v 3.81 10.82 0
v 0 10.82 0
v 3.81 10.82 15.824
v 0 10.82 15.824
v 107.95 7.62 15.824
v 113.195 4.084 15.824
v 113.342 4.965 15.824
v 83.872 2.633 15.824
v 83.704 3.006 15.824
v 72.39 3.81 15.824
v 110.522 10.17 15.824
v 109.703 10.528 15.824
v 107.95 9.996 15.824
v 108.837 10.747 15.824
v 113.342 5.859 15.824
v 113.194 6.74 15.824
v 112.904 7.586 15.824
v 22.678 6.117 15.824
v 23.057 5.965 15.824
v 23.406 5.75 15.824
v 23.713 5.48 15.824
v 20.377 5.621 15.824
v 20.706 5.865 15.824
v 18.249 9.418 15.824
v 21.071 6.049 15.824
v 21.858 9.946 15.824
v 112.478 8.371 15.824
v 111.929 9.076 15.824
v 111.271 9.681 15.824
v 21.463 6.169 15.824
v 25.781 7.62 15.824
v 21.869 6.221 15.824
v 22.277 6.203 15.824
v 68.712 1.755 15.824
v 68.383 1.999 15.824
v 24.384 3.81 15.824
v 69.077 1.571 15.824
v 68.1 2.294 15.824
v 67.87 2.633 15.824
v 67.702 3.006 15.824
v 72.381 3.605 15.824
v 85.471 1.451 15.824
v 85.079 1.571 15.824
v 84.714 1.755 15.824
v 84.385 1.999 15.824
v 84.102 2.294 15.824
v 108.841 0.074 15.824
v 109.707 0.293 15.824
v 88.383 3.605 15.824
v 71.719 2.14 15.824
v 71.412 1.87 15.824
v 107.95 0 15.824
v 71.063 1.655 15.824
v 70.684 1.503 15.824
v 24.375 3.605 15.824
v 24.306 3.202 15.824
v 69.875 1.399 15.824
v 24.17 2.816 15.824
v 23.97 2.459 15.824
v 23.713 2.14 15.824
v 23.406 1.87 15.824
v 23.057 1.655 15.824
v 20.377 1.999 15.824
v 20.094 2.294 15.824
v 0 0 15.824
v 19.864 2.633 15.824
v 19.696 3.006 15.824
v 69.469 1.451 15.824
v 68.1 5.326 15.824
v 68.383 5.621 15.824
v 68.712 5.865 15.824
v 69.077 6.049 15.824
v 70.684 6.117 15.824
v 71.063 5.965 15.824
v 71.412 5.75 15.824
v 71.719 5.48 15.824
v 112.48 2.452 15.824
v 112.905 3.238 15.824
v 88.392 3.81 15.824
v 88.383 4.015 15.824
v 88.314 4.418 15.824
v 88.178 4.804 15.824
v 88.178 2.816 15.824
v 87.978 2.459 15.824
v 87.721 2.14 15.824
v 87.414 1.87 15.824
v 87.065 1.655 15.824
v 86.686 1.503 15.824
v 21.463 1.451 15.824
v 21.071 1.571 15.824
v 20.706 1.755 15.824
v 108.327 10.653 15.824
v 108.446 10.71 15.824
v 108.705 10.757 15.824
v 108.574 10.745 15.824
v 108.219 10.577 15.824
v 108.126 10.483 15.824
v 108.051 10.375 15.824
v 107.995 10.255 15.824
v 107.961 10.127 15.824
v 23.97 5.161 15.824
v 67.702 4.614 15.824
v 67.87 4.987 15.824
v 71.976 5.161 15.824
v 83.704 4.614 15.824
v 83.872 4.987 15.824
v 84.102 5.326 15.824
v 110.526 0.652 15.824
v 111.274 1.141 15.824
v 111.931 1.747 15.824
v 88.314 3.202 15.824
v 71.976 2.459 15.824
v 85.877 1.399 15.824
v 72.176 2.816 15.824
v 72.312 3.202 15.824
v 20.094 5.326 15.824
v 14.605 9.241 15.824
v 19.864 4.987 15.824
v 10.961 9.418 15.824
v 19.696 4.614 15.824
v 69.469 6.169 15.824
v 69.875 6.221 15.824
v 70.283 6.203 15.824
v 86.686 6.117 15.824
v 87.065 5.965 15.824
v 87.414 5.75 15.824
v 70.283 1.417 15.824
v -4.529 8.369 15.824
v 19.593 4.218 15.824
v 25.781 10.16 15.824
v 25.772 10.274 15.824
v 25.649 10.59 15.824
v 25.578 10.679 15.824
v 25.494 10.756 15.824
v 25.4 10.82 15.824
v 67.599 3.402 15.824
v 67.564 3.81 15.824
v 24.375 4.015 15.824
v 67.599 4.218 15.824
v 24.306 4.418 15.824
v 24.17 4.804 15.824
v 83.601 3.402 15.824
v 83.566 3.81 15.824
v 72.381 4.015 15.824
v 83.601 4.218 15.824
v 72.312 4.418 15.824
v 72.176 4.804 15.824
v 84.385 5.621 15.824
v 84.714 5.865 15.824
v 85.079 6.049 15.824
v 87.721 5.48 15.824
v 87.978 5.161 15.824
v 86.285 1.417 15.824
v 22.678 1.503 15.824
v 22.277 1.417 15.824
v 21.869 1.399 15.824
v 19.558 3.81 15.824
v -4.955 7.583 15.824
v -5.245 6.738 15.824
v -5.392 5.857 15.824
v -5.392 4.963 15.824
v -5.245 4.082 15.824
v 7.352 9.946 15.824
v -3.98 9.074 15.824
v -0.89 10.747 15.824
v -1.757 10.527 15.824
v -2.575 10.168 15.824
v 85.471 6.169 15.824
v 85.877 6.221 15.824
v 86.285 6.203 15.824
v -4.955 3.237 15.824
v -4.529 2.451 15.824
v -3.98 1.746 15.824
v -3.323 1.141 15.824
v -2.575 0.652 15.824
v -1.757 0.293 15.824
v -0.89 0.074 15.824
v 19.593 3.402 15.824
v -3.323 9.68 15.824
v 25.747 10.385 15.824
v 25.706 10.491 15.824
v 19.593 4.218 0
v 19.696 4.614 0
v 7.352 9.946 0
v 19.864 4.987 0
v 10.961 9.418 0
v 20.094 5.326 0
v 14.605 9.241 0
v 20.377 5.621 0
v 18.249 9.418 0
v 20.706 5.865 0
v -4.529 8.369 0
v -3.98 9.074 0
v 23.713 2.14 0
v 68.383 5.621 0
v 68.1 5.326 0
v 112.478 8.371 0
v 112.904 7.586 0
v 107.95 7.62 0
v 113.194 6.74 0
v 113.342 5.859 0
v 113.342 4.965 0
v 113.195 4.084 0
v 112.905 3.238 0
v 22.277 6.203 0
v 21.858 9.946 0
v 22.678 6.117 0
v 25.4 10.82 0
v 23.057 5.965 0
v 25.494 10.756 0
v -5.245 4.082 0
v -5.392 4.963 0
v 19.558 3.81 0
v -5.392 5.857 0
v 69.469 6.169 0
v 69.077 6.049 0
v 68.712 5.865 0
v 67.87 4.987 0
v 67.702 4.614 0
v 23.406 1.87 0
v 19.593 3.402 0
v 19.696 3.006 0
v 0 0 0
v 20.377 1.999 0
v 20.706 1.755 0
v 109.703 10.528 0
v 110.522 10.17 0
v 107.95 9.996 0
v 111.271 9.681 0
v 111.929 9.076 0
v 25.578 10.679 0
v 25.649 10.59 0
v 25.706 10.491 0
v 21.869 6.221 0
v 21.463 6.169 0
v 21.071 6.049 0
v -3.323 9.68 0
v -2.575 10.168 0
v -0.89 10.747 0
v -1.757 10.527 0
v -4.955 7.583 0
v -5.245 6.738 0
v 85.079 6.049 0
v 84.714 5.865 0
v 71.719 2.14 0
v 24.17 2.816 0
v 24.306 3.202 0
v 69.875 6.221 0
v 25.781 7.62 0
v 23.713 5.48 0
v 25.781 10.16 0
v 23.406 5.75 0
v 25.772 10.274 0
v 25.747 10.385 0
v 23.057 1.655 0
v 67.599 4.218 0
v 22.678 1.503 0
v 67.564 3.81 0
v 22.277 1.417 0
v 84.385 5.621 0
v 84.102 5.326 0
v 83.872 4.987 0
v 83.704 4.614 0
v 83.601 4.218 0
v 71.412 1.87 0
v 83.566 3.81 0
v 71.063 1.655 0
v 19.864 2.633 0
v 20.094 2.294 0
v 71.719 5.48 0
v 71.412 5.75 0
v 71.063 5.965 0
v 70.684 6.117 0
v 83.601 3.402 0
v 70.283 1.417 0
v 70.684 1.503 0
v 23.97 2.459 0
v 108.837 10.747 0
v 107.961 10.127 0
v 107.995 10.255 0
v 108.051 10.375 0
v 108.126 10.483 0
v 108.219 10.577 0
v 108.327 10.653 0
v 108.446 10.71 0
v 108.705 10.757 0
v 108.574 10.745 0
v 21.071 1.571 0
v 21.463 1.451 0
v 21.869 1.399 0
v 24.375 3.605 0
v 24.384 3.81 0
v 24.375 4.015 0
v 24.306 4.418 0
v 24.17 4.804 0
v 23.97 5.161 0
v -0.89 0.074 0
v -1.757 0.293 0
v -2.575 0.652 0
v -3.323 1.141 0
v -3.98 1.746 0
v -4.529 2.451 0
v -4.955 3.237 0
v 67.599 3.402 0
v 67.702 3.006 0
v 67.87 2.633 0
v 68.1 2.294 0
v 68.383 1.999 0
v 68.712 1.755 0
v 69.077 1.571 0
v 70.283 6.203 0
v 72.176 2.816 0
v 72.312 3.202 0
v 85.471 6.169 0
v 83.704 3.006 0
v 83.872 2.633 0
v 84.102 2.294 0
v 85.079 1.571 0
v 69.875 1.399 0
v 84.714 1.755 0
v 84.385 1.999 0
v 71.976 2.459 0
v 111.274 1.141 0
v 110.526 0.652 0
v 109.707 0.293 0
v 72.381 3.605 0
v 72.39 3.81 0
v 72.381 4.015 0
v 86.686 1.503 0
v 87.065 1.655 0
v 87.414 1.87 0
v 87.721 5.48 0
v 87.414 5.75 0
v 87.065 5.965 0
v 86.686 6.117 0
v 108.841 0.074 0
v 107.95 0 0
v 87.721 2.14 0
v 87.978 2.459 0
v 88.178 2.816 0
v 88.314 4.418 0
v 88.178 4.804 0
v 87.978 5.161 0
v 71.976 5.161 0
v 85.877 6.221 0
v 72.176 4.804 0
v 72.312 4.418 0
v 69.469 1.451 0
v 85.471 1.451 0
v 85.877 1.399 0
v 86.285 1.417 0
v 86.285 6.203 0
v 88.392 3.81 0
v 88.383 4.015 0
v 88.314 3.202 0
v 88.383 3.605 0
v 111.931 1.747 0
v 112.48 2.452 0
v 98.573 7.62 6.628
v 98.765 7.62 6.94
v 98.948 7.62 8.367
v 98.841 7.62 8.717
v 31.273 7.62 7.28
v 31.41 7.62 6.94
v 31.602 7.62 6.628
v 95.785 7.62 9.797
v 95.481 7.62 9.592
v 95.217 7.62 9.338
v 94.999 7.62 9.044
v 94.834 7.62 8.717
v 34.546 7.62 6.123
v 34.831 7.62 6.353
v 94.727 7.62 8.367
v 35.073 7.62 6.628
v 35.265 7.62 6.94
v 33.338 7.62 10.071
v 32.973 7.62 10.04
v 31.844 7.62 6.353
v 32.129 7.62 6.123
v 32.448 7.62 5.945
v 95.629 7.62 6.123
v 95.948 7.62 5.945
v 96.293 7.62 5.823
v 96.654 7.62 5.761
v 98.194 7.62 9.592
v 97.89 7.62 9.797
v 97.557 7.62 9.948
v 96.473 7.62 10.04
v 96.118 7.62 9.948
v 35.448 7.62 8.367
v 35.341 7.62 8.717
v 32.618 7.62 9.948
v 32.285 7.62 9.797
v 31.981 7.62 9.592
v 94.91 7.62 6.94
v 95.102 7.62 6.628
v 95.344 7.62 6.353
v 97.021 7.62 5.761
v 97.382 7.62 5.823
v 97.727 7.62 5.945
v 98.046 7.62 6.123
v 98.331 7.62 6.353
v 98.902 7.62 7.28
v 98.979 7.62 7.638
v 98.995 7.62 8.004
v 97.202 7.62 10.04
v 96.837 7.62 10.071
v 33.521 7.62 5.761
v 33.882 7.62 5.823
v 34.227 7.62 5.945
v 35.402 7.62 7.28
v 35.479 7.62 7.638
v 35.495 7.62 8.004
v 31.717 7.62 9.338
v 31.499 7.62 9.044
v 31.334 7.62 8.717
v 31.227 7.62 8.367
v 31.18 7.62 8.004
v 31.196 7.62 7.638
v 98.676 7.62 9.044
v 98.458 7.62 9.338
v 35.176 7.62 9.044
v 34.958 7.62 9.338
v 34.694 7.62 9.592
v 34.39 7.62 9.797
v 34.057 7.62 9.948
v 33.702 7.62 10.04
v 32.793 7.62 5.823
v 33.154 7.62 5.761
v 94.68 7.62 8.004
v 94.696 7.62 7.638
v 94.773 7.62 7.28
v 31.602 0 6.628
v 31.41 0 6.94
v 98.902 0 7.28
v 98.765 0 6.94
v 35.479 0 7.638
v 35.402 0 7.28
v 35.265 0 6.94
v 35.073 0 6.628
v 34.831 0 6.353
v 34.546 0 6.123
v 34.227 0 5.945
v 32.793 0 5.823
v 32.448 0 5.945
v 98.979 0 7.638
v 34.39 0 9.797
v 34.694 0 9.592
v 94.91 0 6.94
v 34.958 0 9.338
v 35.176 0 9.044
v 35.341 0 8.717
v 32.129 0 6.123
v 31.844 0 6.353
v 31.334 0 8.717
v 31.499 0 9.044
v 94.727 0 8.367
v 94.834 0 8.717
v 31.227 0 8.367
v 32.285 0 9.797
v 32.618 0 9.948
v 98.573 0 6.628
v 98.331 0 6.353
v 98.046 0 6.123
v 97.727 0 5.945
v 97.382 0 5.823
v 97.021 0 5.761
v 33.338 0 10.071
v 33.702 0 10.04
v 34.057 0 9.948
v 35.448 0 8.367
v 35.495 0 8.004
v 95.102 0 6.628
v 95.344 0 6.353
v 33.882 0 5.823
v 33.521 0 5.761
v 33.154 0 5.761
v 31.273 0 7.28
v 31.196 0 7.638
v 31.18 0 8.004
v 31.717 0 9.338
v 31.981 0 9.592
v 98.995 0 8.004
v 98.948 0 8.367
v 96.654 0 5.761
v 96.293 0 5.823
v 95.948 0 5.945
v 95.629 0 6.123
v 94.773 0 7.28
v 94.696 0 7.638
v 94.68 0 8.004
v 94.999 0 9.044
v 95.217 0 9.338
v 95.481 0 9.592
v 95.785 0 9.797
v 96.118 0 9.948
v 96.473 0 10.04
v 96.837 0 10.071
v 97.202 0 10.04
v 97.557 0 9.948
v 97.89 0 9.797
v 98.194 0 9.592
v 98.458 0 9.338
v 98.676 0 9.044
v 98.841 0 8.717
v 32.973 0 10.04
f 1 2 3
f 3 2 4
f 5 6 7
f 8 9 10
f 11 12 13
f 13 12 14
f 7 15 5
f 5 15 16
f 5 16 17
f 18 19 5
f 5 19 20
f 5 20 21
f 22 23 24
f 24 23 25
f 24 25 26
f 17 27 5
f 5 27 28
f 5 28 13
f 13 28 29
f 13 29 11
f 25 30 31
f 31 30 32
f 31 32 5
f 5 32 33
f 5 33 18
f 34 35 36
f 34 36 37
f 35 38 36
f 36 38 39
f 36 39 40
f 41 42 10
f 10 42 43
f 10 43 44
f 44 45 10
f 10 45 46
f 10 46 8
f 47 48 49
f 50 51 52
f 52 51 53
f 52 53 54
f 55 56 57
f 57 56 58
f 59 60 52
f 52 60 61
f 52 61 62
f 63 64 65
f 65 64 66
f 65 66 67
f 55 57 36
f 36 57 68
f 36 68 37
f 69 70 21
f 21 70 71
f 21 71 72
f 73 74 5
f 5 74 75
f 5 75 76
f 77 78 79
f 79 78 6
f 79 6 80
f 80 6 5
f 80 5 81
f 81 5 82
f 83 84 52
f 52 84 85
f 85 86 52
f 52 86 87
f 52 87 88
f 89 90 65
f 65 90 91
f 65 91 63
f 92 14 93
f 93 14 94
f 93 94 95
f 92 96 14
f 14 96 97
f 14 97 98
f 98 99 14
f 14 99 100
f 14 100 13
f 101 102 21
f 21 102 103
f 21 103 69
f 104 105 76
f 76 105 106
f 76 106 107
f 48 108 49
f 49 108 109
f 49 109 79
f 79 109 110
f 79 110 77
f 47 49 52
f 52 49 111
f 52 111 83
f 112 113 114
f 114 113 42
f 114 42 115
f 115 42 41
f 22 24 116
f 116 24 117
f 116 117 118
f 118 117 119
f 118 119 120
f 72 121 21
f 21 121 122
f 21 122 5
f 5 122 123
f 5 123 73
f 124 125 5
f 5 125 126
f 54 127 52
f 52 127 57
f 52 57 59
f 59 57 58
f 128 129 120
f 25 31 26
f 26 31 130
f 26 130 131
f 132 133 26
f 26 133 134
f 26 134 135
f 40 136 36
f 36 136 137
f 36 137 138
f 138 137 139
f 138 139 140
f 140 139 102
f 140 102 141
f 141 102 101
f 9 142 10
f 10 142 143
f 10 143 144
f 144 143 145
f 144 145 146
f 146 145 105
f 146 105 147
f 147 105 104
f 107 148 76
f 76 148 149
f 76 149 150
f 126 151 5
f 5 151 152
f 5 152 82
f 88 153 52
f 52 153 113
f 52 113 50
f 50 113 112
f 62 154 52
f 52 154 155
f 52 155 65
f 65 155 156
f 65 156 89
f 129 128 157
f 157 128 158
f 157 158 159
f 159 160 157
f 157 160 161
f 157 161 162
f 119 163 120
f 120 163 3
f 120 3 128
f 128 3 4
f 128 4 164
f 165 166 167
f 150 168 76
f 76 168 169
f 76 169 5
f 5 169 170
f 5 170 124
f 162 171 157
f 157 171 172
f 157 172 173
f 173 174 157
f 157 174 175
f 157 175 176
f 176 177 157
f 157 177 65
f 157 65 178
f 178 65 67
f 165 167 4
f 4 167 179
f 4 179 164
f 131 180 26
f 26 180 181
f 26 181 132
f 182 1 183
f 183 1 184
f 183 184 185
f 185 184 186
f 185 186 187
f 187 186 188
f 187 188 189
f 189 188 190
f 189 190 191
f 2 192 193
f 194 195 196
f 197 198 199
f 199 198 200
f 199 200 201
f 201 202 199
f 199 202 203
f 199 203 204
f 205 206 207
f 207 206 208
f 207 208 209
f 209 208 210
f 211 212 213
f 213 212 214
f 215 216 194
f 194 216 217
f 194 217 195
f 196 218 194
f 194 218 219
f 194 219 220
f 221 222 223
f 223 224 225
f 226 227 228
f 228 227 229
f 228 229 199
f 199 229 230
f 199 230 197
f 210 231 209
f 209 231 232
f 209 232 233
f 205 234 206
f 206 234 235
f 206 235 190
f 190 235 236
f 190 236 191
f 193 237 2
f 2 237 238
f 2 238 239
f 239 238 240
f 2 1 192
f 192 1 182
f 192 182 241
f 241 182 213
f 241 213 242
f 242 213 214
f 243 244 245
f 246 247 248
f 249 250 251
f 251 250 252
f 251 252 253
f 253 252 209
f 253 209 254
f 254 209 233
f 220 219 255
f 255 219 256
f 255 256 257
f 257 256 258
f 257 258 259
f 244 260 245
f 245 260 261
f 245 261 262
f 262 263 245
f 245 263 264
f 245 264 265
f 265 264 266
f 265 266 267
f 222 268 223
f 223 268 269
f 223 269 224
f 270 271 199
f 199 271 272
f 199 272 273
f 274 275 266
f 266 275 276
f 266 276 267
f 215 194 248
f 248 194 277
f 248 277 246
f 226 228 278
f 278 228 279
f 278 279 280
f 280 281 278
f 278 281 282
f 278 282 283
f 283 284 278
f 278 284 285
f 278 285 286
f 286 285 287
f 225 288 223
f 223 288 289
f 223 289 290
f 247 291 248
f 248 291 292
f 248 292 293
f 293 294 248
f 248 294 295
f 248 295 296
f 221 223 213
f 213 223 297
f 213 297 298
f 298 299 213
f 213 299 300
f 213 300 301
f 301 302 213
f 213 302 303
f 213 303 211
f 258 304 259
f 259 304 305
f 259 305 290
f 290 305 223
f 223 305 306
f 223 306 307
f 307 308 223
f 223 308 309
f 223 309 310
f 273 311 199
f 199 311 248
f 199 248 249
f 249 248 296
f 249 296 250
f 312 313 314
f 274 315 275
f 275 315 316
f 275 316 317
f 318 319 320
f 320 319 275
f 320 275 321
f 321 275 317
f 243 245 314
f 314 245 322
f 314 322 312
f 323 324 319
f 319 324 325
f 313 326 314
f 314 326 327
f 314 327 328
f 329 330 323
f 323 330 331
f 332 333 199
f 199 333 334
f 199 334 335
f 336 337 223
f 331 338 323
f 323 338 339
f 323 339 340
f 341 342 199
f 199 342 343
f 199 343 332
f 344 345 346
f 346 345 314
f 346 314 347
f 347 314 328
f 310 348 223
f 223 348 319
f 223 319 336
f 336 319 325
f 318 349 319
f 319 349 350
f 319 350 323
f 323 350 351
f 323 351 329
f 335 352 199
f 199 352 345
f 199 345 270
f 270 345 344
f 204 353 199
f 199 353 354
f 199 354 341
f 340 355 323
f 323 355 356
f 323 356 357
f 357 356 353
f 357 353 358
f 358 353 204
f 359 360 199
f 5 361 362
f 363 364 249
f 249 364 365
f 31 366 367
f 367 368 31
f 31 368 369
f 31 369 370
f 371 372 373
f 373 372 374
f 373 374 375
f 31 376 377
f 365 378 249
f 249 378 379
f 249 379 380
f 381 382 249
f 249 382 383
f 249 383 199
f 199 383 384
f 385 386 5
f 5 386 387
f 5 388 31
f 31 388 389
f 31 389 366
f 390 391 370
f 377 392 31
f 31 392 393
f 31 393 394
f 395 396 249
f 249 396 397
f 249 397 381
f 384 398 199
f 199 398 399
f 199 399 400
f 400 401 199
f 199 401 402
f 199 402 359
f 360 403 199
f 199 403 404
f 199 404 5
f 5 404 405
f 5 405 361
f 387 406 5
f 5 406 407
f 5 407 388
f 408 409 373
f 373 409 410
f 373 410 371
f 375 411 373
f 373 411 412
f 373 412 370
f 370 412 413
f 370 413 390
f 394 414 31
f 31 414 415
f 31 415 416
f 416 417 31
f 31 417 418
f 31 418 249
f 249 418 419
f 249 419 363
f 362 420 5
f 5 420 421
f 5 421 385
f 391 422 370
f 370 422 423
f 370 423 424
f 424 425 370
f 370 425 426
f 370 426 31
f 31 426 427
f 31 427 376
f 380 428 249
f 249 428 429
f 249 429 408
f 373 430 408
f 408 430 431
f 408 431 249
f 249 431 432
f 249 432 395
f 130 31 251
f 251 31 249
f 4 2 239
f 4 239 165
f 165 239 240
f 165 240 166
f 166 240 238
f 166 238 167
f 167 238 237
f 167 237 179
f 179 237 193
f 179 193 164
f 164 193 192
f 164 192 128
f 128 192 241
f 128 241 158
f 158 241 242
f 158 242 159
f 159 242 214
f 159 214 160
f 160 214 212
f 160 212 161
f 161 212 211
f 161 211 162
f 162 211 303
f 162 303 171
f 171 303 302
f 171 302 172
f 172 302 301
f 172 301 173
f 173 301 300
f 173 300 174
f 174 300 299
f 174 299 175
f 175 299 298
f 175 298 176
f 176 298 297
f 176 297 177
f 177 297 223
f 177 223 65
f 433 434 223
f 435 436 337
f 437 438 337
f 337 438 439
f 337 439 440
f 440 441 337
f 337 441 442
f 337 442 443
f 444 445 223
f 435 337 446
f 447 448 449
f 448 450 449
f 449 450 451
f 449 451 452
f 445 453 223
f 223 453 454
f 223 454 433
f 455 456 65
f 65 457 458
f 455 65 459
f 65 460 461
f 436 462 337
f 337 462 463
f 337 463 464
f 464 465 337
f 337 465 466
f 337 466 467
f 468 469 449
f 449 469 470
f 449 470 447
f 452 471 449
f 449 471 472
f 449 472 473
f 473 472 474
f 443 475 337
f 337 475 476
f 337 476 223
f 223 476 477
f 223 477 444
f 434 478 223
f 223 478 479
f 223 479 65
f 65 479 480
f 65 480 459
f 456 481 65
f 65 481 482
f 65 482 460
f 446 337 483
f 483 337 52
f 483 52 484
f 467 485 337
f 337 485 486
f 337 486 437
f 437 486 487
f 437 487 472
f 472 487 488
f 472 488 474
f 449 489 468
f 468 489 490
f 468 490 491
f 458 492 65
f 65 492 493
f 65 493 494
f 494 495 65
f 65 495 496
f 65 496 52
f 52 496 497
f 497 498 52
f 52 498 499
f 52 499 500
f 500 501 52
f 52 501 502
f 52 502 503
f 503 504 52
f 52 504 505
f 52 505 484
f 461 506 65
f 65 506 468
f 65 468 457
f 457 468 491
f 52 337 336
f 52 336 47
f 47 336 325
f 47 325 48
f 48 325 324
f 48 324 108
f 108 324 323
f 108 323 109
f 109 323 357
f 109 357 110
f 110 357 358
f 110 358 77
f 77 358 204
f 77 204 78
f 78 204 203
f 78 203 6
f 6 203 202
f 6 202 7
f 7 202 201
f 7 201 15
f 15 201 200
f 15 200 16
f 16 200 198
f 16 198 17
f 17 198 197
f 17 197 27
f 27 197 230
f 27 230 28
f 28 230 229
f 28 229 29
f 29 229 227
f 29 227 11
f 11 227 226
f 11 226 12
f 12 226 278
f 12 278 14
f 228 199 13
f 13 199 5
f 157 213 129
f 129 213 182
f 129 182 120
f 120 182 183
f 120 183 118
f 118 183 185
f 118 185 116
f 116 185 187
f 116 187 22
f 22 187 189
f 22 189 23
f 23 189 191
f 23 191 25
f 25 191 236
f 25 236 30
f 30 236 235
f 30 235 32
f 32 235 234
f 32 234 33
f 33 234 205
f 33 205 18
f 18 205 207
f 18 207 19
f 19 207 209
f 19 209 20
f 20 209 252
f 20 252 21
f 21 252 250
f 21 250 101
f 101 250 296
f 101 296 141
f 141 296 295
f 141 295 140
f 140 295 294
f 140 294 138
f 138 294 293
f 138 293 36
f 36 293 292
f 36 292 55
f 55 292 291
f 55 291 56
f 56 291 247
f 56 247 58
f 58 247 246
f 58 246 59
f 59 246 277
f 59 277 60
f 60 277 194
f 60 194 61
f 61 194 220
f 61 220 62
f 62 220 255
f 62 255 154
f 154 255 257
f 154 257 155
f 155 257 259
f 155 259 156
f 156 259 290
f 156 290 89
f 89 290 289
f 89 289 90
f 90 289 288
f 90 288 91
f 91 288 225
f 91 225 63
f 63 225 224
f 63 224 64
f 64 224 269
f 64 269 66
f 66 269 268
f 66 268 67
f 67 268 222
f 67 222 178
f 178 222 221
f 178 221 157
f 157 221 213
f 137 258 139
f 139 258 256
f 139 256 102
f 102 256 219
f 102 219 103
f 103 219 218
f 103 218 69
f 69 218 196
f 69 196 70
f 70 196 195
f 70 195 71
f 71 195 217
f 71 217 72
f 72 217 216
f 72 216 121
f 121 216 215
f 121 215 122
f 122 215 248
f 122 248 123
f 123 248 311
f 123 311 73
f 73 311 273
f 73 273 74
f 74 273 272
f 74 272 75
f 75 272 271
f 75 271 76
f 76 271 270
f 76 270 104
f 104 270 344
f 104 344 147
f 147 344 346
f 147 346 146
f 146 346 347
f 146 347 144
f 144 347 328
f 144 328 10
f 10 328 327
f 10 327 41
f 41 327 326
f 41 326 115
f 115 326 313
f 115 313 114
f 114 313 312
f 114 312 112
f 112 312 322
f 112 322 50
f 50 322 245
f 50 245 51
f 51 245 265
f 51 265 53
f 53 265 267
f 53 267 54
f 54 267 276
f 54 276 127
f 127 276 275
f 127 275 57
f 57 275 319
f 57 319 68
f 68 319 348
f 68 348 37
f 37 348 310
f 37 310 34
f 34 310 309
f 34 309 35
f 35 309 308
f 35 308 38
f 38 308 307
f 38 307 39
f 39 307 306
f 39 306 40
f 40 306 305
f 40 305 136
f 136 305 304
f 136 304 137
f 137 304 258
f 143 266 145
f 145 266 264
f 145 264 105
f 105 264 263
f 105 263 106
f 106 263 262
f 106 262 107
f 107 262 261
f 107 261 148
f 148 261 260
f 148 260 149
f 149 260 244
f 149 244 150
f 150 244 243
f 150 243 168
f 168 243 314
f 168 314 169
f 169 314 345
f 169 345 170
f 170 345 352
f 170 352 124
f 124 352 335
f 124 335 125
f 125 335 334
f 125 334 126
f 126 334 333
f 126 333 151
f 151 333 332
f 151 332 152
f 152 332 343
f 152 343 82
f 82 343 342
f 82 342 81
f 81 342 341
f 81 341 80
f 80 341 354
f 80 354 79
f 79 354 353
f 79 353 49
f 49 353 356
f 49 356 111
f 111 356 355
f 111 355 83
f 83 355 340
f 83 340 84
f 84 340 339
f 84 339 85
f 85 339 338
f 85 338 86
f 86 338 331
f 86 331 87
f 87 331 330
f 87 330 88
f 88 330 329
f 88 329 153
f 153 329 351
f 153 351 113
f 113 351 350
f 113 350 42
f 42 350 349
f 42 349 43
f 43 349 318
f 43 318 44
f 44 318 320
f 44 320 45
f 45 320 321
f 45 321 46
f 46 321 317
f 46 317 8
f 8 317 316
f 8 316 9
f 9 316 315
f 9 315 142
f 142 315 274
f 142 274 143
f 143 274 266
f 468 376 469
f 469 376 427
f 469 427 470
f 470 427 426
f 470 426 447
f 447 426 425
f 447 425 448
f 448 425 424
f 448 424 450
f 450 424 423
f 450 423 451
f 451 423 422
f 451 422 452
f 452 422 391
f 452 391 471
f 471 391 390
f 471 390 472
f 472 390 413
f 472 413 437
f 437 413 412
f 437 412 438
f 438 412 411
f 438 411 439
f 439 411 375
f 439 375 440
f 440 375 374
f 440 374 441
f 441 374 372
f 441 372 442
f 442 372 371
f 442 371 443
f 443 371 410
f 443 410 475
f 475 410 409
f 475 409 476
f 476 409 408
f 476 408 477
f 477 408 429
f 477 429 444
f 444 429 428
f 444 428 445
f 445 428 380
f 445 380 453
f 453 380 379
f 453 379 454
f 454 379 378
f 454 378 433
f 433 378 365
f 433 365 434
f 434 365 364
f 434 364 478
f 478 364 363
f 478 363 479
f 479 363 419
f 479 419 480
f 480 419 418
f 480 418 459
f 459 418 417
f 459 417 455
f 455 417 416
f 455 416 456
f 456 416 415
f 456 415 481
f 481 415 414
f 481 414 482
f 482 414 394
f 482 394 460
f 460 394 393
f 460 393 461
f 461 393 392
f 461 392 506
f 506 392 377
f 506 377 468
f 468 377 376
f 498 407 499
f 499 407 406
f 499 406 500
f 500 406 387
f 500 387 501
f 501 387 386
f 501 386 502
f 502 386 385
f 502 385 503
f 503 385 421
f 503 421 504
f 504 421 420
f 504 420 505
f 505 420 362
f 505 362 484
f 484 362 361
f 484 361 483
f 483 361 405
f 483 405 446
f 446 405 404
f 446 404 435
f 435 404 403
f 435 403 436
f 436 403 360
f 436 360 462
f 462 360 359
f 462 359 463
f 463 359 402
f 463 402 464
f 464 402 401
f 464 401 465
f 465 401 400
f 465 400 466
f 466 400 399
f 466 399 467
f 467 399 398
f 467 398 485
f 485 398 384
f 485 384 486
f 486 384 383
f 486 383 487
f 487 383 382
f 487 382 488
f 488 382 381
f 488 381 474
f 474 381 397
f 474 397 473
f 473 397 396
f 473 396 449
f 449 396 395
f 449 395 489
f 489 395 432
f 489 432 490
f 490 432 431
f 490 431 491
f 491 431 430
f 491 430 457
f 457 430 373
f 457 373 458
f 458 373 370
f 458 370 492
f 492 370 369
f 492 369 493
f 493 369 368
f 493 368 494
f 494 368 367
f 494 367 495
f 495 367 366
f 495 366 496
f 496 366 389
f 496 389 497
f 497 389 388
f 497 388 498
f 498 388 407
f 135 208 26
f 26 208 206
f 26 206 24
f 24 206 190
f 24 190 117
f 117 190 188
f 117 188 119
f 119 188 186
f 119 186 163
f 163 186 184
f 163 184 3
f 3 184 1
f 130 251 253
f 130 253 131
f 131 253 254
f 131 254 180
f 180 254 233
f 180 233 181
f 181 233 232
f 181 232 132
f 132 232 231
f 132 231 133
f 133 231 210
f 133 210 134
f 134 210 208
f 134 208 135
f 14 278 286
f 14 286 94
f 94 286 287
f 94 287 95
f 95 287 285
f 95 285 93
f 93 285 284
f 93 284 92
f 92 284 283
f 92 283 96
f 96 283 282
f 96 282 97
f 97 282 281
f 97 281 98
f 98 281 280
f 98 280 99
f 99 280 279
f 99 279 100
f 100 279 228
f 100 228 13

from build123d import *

# Parameters (mm, degrees)
SKETCH1_R           = 2.413
BOSS_EXTRUDE1_DEPTH = 15.8242
SKETCH3_R           = 2.159
CUT_EXTRUDE1_DEPTH  = 7.62
CUT_EXTRUDE2_DEPTH  = 15.8242
FILLET1_R           = 0.762


with BuildPart() as part:
    # Sketch1 → Boss-Extrude1 (new body)
    with BuildSketch(Plane.XY):
        with BuildLine():
            Line((0, 0), (107.95, 0))
            ThreePointArc((107.95, 0), (113.3602, 5.4102), (107.95, 10.8204))
            Line((107.95, 10.8204), (107.95, 7.62))
            Line((107.95, 7.62), (25.781, 7.62))
            Line((25.781, 7.62), (25.781, 10.8204))
            Line((25.781, 10.8204), (0, 10.8204))
            ThreePointArc((0, 10.8204), (-5.4102, 5.4102), (0, 0))
        make_face()
        with Locations((21.971, 3.81)):
            Circle(SKETCH1_R, mode=Mode.SUBTRACT)
        with Locations((69.977, 3.81)):
            Circle(SKETCH1_R, mode=Mode.SUBTRACT)
        with Locations((85.979, 3.81)):
            Circle(SKETCH1_R, mode=Mode.SUBTRACT)
    extrude(amount=BOSS_EXTRUDE1_DEPTH)

    # Sketch3 → Cut-Extrude1 (cut)
    with BuildSketch(Plane(origin=(0, 7.62, 0), x_dir=(1, 0, 0), z_dir=(0, 1, 0))):
        with Locations(Location((96.8375, -7.9121, 0), (0, 0, 270))):
            Circle(SKETCH3_R)
        with Locations(Location((33.3375, -7.9121, 0), (0, 0, 270))):
            Circle(SKETCH3_R)
    extrude(amount=-CUT_EXTRUDE1_DEPTH, mode=Mode.SUBTRACT)

    # Sketch4 → Cut-Extrude2 (cut)
    with BuildSketch(Plane(origin=(0, 0, 0), x_dir=(-1, 0, 0), z_dir=(0, 0, -1))):
        with BuildLine():
            Line((-3.81, 10.8204), (-25.4, 10.8204))
            ThreePointArc((-25.4, 10.8204), (-14.605, 9.241326758), (-3.81, 10.8204))
        make_face()
    extrude(amount=-CUT_EXTRUDE2_DEPTH, mode=Mode.SUBTRACT)

    # Fillet1
    # the kernel refuses this fillet: 0.762 mm, written as the material it takes off along each edge
    with BuildSketch(Plane(origin=(107.95, 10.8204, -2.224832658), x_dir=(0.9966120705297453, -0.08224585627503565, 0), z_dir=(0, 0, 1))) as fillet1_piece_1:
        with BuildLine():
            CenterArc((0.827261721, -0.759418398), FILLET1_R, 85.282330638, 99.435338723)
            Line((0.067843323, -0.82208974), (0.052654955, -0.823343167))
            Line((0.052654955, -0.823343167), (-0.015188368, -0.001253427))
            Line((-0.015188368, -0.001253427), (-0.001253427, 0.015188368))
            ThreePointArc((-0.001253427, 0.015188368), (0.444966532, 0.033569376), (0.89118649, 0.015188368))
            Line((0.89118649, 0.015188368), (0.889933063, 0))
        make_face()
    extrude(amount=20.273865316, mode=Mode.SUBTRACT)
    with BuildSketch(Plane(origin=(25.781, 10.8204, -1.649778394), x_dir=(-1, 0, 0), z_dir=(0, 0, 1))) as fillet1_piece_2:
        with BuildLine():
            CenterArc((0.762, 0.659911358), FILLET1_R, 180, 60)
            Line((0, 0.659911358), (-0.01524, 0.659911358))
            Line((-0.01524, 0.659911358), (-0.01524, 0))
            Line((-0.01524, 0), (0, -0.01524))
            ThreePointArc((0, -0.01524), (0.1905, -0.01524), (0.37338, -0.013198227))
            Line((0.37338, -0.013198227), (0.381, 0))
        make_face()
    extrude(amount=19.123756788, mode=Mode.SUBTRACT)


solid = part.part
